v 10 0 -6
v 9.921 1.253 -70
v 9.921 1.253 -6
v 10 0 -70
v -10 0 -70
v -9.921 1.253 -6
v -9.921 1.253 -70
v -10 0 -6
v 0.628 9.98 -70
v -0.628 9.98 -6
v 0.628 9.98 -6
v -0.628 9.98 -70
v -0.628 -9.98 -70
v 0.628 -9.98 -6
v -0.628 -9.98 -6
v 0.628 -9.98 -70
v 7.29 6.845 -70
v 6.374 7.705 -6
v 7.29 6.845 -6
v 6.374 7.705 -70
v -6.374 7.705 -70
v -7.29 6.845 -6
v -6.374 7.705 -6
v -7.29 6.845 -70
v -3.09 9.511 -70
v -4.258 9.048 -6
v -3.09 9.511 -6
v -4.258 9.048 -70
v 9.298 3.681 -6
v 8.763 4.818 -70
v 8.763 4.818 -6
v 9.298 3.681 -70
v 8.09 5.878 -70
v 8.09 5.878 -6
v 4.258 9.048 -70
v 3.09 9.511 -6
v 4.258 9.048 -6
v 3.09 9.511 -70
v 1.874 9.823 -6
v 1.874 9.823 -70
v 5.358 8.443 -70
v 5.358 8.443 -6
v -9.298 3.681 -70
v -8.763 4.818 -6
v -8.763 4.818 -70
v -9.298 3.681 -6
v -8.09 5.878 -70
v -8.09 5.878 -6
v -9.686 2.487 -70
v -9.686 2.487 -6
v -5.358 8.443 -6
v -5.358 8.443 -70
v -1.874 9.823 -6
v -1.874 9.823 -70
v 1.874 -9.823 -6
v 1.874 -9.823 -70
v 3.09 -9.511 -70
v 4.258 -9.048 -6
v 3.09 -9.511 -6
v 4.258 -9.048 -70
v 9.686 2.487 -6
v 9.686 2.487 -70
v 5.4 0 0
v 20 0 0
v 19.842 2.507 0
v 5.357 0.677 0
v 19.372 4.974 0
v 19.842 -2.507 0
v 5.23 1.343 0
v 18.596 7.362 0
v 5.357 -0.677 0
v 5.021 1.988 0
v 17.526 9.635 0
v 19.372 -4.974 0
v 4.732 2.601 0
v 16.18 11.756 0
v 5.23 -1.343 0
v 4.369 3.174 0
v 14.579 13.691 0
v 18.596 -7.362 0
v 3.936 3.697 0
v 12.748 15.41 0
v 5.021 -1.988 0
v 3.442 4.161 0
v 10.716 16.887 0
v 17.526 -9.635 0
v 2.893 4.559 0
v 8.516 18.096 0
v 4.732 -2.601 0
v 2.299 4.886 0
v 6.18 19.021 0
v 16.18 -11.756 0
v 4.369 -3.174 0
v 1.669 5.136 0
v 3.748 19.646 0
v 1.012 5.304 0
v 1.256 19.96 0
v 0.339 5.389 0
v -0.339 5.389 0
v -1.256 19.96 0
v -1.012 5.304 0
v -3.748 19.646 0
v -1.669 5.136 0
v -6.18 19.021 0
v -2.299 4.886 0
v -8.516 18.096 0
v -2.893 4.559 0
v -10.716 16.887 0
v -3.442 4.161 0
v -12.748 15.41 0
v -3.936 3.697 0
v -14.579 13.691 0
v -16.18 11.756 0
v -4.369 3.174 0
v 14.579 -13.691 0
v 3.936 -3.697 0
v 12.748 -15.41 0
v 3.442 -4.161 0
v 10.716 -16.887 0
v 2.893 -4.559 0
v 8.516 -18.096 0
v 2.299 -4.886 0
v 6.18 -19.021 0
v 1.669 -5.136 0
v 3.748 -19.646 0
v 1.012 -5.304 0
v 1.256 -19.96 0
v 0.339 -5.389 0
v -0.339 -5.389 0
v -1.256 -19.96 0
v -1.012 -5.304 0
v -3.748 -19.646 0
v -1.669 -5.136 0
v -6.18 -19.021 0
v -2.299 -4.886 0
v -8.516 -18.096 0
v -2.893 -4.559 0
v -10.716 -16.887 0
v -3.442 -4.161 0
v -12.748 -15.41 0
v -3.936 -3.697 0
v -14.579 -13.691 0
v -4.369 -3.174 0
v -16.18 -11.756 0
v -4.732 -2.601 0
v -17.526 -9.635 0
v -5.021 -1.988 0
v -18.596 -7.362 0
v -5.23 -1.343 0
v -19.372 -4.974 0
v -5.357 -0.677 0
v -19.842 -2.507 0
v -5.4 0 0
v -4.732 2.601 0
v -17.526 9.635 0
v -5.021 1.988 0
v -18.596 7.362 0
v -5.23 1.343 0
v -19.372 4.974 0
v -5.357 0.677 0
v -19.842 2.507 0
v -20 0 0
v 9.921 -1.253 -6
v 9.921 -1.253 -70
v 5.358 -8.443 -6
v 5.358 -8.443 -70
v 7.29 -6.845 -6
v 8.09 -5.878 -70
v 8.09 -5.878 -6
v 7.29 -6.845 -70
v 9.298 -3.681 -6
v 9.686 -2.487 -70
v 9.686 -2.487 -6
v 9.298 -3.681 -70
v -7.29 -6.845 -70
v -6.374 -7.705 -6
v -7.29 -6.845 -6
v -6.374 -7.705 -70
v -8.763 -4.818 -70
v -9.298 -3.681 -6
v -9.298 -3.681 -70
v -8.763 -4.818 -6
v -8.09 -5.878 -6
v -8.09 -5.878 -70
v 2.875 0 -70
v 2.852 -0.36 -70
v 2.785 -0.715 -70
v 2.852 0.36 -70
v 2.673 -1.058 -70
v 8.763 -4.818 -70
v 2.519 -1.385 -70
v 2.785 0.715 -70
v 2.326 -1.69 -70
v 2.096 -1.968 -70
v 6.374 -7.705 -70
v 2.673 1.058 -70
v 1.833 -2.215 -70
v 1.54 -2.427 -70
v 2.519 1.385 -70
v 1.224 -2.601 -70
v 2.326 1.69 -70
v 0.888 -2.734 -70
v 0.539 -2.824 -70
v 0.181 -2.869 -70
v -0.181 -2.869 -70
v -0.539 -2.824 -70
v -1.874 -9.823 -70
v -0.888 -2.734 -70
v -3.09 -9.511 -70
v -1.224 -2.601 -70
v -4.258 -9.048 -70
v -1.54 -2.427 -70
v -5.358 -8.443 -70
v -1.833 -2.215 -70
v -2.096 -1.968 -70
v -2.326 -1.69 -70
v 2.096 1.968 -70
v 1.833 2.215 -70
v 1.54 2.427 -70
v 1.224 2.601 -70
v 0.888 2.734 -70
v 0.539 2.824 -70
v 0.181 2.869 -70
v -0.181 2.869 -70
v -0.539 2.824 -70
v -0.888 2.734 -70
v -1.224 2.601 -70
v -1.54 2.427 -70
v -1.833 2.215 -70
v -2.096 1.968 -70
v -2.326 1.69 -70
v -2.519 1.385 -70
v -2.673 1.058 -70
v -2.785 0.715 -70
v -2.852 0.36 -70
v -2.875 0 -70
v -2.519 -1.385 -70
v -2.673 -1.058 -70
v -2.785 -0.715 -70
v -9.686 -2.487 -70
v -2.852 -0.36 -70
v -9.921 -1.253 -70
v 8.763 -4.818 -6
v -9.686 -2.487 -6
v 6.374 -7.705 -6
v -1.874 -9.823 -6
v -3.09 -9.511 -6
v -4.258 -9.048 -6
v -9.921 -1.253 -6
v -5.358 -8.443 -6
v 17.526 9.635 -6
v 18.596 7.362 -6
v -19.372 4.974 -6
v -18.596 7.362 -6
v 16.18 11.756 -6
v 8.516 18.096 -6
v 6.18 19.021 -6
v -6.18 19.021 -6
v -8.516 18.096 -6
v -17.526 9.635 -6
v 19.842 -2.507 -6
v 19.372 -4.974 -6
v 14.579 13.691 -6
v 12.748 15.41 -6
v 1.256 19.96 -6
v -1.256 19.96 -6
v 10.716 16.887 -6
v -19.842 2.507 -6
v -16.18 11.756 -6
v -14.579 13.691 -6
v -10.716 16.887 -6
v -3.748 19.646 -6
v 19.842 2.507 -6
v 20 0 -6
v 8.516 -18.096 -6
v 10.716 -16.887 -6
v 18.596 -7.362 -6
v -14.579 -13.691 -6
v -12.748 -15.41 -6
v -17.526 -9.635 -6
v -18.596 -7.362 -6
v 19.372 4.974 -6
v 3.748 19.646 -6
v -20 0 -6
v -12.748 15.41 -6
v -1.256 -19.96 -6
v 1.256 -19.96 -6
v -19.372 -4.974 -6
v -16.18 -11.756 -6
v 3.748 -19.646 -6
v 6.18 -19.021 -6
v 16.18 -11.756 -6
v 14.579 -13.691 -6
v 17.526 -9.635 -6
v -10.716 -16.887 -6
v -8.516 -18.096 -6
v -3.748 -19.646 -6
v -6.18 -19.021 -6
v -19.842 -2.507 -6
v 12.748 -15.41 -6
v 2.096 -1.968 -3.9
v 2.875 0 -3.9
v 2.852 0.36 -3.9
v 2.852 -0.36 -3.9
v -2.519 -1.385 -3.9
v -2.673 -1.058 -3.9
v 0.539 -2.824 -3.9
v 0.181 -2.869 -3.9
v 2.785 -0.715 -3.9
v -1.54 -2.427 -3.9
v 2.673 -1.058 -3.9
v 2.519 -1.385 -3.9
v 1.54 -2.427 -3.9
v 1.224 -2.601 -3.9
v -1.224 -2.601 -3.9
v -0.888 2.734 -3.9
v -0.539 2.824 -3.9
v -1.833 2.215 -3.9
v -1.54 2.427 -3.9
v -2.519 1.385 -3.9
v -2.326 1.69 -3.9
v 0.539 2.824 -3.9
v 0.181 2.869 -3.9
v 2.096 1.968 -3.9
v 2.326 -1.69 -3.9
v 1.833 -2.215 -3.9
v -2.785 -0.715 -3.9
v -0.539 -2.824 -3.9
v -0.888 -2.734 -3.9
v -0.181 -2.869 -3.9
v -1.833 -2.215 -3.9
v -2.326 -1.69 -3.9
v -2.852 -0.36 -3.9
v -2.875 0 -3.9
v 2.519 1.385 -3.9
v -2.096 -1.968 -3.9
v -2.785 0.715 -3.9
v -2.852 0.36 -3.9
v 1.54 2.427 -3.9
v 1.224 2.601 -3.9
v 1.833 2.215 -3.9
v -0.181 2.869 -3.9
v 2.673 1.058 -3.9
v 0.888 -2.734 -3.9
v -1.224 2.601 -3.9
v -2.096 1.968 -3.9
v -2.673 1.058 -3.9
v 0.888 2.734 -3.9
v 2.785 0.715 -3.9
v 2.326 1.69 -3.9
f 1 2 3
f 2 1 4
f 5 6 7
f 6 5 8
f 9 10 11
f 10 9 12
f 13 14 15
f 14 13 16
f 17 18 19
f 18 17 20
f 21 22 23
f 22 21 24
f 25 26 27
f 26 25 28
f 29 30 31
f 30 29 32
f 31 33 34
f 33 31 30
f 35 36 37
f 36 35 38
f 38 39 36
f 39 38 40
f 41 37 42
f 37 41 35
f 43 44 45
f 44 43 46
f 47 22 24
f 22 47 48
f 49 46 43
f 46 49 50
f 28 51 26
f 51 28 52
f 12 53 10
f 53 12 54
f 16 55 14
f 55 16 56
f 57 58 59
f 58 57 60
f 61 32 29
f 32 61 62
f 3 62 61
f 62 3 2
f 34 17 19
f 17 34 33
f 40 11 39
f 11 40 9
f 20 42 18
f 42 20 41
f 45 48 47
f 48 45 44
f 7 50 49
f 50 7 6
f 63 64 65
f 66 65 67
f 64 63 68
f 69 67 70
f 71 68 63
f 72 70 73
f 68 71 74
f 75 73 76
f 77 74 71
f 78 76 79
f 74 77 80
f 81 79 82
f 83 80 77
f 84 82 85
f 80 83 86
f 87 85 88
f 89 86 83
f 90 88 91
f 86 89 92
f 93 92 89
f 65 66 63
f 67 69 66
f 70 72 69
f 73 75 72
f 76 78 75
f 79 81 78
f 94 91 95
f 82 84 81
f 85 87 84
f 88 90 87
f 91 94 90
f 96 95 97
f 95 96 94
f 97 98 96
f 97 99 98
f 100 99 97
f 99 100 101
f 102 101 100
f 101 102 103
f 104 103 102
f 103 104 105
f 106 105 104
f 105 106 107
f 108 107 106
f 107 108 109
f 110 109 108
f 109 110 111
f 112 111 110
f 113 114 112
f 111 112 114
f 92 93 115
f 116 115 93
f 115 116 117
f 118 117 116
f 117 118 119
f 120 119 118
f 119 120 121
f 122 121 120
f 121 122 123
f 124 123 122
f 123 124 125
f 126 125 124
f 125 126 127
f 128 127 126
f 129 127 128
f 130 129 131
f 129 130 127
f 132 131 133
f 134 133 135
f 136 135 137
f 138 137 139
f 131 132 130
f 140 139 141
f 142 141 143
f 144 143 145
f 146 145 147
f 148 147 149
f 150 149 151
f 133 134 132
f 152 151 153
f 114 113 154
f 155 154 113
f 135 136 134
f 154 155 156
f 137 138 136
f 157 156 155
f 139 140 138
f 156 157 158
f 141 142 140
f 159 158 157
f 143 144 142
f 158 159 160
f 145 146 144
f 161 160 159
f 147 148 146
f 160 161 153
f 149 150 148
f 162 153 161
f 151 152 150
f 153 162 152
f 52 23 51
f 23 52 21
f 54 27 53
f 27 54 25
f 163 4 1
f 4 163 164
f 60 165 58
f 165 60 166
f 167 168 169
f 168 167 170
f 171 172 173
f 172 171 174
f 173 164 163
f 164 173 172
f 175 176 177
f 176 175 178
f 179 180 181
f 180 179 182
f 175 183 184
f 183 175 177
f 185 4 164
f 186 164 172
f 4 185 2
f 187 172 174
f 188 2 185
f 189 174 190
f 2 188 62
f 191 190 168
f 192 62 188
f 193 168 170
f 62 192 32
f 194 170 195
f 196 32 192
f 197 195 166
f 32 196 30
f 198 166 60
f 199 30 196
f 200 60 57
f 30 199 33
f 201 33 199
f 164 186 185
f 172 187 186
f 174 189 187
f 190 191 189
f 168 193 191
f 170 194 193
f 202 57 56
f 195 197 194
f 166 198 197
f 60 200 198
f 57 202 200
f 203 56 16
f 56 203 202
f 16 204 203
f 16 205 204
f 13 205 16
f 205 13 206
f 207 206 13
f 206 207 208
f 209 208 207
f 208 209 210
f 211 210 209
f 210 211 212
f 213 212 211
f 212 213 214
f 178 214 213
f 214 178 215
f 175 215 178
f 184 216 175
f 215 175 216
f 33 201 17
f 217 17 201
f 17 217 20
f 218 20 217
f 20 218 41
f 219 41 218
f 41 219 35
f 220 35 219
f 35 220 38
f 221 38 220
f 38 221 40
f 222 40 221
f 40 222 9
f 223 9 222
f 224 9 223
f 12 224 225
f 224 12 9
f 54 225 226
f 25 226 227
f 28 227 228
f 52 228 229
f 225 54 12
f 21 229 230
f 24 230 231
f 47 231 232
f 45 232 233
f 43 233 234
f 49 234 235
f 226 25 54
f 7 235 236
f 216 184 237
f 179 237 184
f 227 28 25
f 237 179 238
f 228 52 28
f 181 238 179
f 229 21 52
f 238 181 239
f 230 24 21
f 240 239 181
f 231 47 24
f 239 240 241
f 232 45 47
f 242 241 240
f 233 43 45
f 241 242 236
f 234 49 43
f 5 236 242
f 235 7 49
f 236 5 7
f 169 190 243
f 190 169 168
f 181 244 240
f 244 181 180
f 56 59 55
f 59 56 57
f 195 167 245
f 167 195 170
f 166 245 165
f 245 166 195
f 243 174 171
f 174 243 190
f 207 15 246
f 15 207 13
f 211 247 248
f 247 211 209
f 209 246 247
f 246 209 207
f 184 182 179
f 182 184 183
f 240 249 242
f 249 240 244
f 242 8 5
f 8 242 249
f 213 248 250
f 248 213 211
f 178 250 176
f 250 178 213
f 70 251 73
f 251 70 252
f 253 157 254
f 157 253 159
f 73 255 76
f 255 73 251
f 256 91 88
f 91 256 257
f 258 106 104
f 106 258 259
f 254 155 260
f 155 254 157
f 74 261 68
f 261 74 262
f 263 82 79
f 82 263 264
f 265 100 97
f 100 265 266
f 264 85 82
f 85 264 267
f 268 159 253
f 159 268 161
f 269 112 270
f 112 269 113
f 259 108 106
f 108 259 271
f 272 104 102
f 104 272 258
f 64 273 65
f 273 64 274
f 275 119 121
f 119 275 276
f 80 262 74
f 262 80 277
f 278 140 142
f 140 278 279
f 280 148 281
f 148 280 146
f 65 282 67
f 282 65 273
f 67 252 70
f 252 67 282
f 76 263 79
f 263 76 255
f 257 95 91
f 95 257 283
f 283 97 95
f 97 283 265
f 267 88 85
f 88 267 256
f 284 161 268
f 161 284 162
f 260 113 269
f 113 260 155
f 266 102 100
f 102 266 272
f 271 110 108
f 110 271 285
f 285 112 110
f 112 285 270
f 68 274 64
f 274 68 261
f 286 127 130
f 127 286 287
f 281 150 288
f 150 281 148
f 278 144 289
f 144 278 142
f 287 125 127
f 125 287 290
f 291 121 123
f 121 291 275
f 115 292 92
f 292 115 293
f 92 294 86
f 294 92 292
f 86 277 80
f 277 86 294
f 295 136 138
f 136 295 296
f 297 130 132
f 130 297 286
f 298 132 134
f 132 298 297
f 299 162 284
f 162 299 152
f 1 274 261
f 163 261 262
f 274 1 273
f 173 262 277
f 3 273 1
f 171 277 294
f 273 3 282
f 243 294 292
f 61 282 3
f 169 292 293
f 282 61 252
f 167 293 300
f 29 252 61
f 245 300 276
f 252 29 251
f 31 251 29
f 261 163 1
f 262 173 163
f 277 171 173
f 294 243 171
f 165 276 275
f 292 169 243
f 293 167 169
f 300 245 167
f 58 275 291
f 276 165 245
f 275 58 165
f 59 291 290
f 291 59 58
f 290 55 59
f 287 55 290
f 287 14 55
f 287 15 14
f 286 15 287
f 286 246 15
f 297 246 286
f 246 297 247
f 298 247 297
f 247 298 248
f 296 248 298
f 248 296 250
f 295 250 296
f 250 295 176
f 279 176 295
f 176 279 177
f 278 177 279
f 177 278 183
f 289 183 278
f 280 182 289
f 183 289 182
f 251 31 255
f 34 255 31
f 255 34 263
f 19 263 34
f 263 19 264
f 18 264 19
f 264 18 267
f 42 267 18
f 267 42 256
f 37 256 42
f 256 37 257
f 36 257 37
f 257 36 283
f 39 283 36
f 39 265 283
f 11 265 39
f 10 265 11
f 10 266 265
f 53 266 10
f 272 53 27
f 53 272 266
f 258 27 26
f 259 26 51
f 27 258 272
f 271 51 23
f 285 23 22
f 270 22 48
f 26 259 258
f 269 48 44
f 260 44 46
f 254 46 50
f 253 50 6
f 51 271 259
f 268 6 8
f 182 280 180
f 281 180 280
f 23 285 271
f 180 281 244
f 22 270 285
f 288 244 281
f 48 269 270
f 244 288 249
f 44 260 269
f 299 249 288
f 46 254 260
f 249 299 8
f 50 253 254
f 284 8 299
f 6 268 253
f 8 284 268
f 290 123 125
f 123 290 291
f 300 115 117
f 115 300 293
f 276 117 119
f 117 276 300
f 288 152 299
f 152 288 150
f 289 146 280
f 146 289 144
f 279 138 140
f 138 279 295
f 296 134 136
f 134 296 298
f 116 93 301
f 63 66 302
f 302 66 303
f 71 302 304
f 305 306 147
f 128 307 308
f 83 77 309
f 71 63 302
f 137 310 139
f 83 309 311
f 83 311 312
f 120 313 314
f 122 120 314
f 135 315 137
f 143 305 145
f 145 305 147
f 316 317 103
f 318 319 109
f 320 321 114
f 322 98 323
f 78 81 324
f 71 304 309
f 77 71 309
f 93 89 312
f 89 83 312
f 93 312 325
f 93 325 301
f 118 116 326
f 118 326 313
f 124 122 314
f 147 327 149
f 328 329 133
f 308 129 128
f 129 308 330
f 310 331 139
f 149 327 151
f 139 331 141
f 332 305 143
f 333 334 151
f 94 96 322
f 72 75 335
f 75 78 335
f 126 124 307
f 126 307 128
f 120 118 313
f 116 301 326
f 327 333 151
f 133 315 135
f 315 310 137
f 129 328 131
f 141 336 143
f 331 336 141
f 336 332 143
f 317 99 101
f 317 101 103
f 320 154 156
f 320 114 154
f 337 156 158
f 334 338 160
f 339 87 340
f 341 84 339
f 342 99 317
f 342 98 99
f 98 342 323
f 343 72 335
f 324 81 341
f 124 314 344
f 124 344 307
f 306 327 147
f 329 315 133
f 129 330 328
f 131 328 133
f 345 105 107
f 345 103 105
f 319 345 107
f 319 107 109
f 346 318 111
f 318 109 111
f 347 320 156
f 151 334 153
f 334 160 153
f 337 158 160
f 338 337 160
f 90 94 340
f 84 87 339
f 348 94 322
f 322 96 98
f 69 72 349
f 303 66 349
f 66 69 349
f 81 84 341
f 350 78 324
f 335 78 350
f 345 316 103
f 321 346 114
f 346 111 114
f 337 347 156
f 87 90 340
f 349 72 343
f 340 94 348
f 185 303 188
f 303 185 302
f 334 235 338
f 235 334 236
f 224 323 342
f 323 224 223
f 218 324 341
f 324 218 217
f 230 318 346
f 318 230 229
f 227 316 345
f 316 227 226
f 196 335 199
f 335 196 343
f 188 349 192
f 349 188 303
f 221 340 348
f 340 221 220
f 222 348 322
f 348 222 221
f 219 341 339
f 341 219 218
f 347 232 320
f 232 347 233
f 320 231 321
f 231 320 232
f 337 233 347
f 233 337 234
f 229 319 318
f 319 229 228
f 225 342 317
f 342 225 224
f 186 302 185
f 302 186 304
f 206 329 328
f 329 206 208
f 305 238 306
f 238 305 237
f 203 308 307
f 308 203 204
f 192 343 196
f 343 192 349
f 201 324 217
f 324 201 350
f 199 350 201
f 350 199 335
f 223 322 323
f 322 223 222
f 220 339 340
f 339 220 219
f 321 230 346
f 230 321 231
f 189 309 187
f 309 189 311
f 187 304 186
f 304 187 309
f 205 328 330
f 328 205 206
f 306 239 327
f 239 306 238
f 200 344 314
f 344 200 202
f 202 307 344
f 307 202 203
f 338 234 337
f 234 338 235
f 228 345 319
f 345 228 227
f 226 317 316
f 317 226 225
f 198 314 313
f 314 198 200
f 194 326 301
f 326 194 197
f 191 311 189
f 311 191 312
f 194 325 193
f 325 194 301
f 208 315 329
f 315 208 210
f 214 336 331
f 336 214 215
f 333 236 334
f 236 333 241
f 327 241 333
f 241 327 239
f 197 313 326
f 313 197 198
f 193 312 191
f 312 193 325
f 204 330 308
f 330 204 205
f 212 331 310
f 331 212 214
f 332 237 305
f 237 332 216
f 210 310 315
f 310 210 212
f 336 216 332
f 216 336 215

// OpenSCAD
$fn = 50;


difference() {
	union() {
		translate(v = [0, 0, -70.0000000000]) {
			cylinder(h = 70, r = 10.0000000000);
		}
		translate(v = [0, 0, -6.0000000000]) {
			cylinder(h = 6, r = 20.0000000000);
		}
	}
	union() {
		translate(v = [0, 0, 0]) {
			rotate(a = [0, 0, 0]) {
				difference() {
					union() {
						#translate(v = [0, 0, -70.0000000000]) {
							cylinder(h = 70, r = 2.6000000000);
						}
						#translate(v = [0, 0, -3.9000000000]) {
							cylinder(h = 3.9000000000, r = 10.0000000000, r1 = 2.8750000000, r2 = 5.4000000000);
						}
						#translate(v = [0, 0, -70.0000000000]) {
							cylinder(h = 70, r = 2.8750000000);
						}
						#translate(v = [0, 0, -70.0000000000]) {
							cylinder(h = 70, r = 2.6000000000);
						}
					}
					union();
				}
			}
		}
	}
}
